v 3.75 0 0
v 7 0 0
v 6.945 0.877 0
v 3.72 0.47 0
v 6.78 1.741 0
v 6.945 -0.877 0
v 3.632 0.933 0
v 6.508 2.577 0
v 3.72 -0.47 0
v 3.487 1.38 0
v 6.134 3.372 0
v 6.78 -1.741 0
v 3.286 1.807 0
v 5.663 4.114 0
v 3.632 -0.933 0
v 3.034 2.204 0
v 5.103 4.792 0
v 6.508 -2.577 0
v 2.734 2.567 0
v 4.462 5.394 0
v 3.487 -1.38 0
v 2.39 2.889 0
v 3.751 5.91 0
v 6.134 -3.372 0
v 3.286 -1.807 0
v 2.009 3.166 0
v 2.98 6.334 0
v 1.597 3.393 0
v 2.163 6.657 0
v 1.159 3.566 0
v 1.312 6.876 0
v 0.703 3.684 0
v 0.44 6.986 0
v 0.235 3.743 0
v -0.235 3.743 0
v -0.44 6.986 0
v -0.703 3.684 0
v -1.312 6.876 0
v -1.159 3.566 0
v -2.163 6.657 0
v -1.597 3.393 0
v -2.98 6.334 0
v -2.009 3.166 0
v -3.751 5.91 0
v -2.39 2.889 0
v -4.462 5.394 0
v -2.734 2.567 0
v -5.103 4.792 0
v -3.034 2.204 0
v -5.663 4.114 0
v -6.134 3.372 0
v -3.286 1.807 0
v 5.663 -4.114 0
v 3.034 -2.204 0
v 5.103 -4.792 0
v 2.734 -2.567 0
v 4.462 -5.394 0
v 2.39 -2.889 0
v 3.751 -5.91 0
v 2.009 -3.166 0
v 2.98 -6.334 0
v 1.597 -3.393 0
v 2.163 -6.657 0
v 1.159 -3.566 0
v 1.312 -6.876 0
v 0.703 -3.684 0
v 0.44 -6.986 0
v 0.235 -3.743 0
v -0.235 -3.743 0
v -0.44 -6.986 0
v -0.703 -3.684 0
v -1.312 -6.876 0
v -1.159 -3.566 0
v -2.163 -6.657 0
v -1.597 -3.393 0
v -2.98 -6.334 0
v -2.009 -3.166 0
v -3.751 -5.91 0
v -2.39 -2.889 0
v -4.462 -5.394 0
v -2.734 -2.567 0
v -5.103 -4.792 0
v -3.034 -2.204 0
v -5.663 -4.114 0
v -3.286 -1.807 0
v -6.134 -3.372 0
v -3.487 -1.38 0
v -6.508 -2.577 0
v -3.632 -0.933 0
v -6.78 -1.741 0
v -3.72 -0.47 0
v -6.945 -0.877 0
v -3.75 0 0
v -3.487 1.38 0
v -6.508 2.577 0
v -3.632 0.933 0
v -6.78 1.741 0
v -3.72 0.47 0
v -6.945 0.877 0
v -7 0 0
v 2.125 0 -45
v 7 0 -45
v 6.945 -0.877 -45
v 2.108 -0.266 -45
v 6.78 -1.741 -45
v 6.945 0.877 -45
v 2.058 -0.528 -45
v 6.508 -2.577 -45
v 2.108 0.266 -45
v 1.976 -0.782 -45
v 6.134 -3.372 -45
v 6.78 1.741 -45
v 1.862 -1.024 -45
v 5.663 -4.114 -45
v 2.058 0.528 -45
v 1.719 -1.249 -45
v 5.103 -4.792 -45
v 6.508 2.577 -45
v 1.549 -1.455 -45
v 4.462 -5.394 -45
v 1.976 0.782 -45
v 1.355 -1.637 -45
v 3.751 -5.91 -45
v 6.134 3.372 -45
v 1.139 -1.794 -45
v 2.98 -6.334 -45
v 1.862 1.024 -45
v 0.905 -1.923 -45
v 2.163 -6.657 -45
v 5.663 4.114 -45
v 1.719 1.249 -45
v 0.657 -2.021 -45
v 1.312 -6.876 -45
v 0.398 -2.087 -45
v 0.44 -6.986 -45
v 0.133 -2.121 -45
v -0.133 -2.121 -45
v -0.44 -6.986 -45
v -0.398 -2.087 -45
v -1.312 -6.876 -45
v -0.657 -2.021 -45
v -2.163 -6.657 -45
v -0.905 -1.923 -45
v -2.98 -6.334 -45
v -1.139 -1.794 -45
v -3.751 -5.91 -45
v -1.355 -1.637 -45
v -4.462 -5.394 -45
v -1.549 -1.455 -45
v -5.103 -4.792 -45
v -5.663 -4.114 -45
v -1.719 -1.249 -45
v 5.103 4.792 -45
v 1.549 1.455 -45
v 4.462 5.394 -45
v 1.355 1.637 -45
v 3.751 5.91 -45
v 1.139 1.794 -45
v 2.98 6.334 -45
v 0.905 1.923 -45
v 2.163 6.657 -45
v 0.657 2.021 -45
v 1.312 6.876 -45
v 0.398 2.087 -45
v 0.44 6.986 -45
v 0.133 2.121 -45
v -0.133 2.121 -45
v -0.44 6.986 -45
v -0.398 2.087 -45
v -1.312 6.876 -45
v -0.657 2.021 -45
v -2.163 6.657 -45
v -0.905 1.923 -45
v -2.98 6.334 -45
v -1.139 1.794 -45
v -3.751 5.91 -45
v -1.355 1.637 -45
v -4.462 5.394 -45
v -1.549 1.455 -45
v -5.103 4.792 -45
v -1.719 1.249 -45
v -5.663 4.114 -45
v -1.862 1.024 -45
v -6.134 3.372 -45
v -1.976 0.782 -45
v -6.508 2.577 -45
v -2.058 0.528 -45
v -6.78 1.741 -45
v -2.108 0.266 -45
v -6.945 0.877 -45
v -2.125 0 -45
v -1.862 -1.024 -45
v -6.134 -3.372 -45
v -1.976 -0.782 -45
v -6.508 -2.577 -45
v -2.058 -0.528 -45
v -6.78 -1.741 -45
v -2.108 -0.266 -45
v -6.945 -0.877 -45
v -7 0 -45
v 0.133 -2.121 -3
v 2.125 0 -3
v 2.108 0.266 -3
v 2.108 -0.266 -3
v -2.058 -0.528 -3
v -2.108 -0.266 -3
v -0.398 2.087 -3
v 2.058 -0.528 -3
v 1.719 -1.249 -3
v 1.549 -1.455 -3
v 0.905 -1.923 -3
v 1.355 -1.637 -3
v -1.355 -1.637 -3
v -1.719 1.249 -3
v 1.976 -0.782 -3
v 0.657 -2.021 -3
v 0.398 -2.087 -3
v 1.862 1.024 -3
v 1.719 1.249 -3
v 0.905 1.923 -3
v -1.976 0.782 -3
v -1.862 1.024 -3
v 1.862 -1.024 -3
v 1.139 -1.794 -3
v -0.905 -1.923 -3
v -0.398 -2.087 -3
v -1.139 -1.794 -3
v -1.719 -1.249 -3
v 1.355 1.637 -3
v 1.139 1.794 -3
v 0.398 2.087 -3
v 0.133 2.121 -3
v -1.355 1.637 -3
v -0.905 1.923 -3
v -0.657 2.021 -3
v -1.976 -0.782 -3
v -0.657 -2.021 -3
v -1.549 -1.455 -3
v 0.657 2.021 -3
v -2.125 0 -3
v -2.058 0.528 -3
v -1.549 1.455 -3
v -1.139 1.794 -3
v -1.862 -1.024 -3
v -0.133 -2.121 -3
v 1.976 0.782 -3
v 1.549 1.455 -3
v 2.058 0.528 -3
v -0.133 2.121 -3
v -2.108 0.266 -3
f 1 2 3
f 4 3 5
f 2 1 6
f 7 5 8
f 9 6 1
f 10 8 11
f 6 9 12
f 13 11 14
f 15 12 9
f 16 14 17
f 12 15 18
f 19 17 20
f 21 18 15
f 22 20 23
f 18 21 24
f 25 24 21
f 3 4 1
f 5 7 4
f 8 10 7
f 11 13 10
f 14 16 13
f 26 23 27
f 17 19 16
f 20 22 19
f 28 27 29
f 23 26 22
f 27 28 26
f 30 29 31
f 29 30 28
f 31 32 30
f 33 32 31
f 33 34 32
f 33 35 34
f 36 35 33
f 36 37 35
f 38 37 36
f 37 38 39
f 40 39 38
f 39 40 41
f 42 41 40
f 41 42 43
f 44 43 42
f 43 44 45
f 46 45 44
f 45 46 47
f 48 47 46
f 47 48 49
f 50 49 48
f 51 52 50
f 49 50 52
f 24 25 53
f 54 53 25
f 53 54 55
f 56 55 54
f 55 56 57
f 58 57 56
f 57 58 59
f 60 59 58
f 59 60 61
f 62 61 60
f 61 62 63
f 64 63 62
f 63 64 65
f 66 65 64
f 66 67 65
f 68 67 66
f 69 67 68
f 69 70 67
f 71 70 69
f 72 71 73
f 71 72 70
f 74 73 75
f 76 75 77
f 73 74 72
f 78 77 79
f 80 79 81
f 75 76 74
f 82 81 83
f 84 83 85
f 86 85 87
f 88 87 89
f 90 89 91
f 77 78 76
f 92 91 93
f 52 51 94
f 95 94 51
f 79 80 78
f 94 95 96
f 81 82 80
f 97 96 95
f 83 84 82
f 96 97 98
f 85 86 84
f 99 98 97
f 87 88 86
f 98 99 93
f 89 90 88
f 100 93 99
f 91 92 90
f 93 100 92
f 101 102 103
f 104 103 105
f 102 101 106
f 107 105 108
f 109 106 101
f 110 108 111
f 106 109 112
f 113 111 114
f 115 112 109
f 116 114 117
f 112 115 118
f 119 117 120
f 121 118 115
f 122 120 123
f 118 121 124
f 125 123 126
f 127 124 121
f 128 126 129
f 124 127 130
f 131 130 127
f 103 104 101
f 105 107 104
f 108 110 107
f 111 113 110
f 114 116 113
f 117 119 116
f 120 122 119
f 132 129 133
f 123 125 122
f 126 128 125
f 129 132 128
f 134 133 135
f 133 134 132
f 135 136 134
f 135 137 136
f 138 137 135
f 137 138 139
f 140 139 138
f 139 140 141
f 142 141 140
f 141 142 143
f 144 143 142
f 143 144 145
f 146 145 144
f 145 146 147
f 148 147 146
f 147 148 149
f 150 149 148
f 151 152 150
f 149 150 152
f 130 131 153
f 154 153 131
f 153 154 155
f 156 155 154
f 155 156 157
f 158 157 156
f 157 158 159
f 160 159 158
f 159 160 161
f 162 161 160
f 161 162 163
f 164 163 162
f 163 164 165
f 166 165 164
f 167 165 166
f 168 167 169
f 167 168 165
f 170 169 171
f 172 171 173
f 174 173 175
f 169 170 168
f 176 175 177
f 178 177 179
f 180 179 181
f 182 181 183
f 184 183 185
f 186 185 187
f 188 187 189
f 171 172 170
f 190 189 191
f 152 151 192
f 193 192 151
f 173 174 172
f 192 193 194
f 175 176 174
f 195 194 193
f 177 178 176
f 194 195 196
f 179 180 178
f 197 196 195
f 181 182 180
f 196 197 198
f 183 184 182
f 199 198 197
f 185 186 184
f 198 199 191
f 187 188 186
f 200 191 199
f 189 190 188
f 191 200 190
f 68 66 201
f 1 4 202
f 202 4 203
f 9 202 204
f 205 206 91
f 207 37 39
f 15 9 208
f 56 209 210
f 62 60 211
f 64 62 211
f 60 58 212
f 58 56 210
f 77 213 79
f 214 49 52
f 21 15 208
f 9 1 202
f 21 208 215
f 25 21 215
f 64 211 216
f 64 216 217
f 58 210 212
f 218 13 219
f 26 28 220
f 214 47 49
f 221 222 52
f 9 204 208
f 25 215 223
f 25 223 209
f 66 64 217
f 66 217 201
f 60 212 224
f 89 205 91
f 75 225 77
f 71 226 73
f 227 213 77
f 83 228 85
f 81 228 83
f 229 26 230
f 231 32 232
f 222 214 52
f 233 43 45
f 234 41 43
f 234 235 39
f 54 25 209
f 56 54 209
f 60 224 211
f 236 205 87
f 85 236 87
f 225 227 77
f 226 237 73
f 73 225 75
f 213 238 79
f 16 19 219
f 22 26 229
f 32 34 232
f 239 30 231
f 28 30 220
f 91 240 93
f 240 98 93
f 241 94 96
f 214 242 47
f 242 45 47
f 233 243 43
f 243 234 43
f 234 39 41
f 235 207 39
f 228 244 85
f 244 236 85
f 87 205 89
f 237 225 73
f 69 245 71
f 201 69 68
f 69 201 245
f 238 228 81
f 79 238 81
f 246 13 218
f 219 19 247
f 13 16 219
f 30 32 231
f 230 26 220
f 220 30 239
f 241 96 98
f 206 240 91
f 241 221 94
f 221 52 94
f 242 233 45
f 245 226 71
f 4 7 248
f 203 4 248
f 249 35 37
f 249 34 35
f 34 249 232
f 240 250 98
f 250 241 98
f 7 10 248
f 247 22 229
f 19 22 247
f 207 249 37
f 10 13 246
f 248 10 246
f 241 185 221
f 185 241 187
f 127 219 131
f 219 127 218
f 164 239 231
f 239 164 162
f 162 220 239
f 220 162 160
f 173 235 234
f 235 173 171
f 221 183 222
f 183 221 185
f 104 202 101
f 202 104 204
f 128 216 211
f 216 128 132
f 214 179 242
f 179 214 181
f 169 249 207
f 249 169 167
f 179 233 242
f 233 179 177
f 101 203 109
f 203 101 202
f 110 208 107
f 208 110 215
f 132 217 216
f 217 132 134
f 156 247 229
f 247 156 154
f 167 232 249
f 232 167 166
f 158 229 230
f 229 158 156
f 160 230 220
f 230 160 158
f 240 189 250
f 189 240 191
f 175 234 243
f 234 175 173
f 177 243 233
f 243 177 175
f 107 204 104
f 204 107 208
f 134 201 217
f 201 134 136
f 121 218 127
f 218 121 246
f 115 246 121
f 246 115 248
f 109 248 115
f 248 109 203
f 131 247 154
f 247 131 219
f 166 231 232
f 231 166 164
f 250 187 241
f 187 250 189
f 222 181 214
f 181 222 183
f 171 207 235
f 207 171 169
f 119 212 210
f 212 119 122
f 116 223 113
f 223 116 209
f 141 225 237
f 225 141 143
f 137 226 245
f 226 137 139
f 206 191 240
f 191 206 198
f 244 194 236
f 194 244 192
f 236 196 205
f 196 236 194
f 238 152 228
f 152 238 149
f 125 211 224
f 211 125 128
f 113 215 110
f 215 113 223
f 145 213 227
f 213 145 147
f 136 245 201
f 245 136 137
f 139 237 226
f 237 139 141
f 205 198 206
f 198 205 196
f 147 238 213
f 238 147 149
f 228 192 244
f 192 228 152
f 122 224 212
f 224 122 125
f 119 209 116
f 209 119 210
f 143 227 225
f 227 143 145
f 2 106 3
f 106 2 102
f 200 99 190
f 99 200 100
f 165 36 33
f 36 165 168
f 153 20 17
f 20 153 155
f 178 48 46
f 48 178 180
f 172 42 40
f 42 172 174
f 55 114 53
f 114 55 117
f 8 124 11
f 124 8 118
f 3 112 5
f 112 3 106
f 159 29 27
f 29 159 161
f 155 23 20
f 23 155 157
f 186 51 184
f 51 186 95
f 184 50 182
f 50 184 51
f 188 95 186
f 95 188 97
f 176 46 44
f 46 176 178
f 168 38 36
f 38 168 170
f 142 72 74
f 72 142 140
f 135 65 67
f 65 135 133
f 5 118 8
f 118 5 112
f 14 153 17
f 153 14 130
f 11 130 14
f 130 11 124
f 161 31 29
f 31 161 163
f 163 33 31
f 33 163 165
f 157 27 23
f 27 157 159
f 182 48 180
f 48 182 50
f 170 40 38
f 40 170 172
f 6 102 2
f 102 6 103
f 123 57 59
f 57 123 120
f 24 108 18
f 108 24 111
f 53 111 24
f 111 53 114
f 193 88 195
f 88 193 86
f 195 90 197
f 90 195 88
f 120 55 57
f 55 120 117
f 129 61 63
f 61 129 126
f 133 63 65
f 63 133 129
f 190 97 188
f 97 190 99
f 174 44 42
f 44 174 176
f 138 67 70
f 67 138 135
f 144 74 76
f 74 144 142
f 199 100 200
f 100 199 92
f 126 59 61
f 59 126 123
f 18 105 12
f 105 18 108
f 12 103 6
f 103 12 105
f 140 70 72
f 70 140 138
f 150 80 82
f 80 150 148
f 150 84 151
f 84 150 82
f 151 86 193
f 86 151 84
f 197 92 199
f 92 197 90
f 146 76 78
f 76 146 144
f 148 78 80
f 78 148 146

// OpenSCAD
$fn = 50;


difference() {
	union() {
		translate(v = [0, 0, -45.0000000000]) {
			cylinder(h = 45, r = 7.0000000000);
		}
		cylinder(h = 0, r = 17.0000000000);
	}
	union() {
		translate(v = [0, 0, 0]) {
			rotate(a = [0, 0, 0]) {
				difference() {
					union() {
						#translate(v = [0, 0, -45.0000000000]) {
							cylinder(h = 45, r = 2.0000000000);
						}
						#translate(v = [0, 0, -3]) {
							cylinder(h = 3, r = 7.0000000000, r1 = 2.1250000000, r2 = 3.7500000000);
						}
						#translate(v = [0, 0, -45.0000000000]) {
							cylinder(h = 45, r = 2.1250000000);
						}
						#translate(v = [0, 0, -45.0000000000]) {
							cylinder(h = 45, r = 2.0000000000);
						}
					}
					union();
				}
			}
		}
	}
}
